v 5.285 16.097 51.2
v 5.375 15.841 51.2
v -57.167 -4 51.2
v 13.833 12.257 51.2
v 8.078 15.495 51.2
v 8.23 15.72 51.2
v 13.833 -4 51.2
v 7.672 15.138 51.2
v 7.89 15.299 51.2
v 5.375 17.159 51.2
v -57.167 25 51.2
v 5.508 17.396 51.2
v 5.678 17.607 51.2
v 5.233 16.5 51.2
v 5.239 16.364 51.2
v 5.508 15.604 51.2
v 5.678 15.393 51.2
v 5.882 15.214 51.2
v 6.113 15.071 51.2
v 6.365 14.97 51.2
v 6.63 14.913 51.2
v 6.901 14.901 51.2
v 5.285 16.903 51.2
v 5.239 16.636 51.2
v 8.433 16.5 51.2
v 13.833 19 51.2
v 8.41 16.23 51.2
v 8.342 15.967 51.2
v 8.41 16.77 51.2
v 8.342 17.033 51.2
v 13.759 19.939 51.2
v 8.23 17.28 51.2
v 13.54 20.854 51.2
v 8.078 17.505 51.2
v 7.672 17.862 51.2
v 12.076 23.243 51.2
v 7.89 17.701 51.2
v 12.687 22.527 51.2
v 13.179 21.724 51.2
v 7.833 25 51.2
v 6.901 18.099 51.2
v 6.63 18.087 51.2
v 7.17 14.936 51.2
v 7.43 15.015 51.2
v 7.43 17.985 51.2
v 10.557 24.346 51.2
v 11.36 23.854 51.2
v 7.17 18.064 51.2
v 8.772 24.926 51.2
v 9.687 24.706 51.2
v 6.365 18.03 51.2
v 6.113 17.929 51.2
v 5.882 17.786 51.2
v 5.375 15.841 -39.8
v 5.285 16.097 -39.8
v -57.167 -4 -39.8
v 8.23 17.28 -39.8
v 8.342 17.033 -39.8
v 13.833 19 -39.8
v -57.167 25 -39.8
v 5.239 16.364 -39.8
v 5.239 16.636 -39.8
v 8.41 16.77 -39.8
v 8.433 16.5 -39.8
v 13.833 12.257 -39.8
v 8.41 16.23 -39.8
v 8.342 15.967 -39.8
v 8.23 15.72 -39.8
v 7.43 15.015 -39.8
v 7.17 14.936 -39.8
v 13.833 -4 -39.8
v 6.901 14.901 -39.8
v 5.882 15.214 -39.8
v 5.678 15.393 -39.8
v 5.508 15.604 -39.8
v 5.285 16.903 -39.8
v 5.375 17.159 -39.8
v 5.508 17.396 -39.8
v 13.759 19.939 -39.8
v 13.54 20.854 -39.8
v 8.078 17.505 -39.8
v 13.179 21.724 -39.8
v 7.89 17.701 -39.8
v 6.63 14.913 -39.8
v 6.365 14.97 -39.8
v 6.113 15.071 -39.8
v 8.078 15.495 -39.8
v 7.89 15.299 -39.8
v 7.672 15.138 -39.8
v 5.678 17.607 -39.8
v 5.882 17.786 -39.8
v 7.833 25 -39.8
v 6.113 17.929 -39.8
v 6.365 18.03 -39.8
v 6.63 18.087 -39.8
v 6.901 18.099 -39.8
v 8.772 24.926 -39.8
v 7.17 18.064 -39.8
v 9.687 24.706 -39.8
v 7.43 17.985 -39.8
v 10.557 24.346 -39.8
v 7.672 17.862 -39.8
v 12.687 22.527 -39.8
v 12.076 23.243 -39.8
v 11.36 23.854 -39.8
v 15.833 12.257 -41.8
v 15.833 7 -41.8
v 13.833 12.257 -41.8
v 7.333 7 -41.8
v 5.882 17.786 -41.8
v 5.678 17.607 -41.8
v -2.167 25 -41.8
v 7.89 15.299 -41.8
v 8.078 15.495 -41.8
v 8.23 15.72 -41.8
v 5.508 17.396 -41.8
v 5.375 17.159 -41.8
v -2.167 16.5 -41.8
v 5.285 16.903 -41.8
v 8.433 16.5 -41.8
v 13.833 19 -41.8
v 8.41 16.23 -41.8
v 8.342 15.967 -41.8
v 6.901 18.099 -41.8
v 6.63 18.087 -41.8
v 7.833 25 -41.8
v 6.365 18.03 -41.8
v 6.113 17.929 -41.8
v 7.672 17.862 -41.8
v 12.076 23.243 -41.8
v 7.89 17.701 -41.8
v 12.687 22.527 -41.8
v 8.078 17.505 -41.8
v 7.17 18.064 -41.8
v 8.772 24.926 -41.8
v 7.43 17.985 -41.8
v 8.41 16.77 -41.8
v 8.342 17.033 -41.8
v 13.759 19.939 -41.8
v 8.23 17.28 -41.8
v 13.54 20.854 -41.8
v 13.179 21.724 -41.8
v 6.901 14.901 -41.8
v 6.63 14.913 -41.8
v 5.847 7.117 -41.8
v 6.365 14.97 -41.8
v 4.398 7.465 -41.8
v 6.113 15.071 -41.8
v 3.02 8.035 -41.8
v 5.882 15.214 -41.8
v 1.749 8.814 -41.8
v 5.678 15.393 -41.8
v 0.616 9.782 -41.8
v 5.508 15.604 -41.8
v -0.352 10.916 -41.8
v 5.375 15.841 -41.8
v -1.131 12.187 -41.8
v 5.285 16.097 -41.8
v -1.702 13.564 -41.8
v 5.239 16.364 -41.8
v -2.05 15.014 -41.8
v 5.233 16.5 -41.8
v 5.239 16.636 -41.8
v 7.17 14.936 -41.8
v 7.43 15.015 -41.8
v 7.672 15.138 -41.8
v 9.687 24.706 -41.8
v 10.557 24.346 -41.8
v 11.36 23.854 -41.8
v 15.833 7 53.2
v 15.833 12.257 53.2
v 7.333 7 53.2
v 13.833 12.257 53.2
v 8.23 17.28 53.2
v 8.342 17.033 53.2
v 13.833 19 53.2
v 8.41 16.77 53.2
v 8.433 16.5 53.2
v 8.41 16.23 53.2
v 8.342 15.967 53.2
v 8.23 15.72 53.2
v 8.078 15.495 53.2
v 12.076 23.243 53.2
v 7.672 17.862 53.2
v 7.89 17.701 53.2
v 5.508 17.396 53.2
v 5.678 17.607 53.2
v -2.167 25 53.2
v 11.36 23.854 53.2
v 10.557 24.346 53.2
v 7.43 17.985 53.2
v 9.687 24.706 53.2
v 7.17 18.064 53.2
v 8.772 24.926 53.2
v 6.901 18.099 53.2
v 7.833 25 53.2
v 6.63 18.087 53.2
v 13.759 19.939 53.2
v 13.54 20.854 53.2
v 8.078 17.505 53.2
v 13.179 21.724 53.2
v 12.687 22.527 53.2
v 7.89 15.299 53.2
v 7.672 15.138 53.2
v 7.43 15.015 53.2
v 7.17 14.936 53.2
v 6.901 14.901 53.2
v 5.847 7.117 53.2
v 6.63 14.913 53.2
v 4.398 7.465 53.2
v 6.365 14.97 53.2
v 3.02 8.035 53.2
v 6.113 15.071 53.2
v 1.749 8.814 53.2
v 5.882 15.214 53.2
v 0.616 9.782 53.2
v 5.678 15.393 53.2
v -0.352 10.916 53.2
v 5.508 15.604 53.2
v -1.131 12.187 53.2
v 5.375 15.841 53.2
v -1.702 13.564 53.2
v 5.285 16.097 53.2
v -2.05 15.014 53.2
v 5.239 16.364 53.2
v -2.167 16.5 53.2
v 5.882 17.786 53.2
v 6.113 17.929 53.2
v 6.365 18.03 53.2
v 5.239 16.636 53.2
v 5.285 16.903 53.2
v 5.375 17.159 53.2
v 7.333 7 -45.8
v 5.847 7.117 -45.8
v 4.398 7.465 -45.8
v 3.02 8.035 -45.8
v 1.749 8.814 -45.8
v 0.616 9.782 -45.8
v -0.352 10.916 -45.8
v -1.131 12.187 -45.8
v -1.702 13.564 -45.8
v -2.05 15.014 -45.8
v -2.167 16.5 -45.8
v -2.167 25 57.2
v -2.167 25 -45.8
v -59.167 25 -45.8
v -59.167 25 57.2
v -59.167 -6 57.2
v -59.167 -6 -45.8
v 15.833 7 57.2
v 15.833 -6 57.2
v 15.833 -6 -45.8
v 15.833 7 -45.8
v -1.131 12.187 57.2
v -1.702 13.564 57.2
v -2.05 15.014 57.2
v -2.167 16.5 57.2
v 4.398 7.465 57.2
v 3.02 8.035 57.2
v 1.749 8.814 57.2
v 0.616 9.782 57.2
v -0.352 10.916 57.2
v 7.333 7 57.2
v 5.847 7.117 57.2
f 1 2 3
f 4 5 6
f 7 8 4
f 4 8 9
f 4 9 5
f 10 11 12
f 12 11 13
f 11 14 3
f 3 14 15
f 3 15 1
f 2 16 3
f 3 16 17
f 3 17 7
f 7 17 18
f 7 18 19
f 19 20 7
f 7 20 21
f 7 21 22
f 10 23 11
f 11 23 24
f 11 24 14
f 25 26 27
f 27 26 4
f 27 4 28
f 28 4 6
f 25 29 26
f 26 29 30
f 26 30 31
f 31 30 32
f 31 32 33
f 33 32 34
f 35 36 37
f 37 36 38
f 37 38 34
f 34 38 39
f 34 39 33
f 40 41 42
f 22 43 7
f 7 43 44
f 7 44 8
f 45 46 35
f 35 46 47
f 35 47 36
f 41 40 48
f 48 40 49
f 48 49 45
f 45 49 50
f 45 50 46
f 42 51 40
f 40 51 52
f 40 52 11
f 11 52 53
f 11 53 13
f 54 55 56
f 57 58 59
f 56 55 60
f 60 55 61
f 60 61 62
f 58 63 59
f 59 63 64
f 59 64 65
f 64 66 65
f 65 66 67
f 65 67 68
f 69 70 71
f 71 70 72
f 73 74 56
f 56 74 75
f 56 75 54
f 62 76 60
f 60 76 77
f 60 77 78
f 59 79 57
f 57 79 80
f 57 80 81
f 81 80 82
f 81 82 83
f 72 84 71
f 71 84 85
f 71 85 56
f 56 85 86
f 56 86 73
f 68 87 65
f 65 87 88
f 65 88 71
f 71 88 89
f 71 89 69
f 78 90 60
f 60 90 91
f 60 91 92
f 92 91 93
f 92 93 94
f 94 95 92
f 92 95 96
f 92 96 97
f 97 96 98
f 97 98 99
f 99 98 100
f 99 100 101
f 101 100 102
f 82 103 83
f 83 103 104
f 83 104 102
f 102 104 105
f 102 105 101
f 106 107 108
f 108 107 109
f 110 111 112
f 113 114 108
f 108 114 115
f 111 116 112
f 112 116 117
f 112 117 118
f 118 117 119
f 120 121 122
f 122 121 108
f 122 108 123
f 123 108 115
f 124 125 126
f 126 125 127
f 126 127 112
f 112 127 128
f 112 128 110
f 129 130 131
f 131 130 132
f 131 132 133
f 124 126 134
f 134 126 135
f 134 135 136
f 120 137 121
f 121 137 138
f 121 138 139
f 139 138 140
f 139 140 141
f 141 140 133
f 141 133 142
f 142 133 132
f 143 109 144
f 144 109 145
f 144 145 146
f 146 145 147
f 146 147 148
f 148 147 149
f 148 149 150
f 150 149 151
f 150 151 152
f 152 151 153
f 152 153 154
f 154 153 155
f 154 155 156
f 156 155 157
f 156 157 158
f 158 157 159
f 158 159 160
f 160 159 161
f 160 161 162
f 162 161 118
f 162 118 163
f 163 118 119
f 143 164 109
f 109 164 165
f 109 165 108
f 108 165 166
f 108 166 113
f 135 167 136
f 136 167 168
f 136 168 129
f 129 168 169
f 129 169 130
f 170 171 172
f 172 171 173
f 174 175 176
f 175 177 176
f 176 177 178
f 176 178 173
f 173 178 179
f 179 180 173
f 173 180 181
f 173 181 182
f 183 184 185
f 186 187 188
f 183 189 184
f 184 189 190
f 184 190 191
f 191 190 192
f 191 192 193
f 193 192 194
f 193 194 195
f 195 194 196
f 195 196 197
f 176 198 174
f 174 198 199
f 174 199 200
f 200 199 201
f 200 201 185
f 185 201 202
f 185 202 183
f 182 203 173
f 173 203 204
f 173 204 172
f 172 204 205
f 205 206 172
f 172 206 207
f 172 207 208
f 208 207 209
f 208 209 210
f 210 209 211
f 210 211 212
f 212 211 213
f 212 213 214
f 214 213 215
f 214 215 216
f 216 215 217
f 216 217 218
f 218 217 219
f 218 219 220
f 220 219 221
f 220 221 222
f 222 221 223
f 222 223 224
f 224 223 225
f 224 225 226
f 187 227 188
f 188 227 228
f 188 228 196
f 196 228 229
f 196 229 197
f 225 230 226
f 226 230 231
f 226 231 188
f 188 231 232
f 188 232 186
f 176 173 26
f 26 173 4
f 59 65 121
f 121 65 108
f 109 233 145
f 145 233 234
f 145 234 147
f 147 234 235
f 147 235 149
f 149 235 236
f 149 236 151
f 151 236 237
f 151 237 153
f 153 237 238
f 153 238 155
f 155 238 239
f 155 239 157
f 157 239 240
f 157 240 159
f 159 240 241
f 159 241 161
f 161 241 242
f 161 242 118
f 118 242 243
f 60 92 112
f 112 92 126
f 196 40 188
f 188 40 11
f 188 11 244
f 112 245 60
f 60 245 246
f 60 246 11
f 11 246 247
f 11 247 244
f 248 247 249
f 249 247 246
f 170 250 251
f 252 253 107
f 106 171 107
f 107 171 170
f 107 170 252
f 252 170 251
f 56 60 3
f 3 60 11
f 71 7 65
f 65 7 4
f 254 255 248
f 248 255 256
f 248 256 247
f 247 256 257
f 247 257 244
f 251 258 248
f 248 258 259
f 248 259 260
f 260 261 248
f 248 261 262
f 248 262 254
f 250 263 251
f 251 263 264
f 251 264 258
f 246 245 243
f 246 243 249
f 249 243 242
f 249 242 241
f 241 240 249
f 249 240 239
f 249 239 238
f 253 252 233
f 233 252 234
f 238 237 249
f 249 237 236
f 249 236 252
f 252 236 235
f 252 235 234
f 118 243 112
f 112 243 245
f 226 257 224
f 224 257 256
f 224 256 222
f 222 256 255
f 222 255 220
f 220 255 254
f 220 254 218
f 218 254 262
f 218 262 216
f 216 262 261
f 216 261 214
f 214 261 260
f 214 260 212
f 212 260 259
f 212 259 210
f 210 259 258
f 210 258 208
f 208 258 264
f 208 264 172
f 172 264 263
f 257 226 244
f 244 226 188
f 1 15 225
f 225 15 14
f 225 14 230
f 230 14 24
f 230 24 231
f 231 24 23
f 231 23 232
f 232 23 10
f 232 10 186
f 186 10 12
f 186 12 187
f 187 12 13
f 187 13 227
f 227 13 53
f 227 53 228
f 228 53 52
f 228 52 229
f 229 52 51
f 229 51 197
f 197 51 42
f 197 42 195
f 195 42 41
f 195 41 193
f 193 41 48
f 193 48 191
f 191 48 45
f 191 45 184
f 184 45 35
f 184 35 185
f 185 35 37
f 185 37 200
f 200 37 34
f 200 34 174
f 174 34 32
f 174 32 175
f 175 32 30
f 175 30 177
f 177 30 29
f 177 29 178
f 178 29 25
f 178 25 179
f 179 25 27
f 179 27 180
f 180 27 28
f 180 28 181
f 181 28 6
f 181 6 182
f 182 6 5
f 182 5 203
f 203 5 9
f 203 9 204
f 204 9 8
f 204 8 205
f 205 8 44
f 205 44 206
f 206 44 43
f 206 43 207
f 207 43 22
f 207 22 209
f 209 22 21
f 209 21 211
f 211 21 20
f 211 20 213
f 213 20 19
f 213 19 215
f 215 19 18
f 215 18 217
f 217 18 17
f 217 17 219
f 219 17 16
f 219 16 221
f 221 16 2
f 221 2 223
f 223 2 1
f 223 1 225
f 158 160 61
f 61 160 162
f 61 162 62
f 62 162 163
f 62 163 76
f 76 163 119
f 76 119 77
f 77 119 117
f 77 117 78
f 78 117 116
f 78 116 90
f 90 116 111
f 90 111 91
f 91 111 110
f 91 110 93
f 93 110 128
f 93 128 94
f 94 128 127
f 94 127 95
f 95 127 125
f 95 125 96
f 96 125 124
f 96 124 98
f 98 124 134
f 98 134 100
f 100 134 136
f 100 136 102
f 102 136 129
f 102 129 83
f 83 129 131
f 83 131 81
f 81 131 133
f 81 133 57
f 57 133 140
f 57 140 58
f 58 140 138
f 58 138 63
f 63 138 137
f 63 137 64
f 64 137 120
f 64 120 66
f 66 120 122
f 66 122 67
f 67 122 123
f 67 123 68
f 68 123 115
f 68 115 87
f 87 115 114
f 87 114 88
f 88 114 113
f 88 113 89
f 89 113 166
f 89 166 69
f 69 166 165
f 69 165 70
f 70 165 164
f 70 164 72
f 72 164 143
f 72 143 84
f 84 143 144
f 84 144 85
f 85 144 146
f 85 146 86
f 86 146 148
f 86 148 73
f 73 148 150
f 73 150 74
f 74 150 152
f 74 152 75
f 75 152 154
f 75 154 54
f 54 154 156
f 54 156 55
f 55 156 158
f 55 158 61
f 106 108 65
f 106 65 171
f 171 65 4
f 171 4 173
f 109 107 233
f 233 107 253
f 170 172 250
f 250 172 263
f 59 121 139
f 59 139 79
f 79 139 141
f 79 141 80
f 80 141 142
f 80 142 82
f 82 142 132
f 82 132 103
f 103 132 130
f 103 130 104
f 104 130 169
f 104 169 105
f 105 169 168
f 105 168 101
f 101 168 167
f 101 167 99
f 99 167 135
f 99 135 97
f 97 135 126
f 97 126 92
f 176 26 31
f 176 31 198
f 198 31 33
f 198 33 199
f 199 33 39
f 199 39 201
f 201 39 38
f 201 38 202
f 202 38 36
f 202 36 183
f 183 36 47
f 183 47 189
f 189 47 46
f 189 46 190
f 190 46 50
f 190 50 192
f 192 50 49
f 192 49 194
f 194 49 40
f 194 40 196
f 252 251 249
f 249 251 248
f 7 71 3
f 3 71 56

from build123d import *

# Parameters (mm, degrees)
SKETCH_1_W           = 75
SKETCH_1_H           = 95
EXTRUDE_1_DEPTH      = 25
SHELL_1_T            = -2
SKETCH_2_W           = 75
SKETCH_2_H           = 25
EXTRUDE_2_DEPTH      = 4
SKETCH_3_W           = 75
SKETCH_3_H           = 25
EXTRUDE_3_DEPTH      = 4
CUT_EXTRUDE_2_DEPTH  = 4
CUT_EXTRUDE_START    = -4
CUT_EXTRUDE_3_DEPTH  = 4
SKETCH_6_R           = 1.6
CUT_EXTRUDE_4_DEPTH  = 150
SKETCH_7_W           = 95
SKETCH_7_H           = 12.742640687
CUT_EXTRUDE_5_DEPTH  = 2
CUT_EXTRUDE_6_DEPTH  = 4
CUT_EXTRUDE_7_DEPTH  = 4
CUT_EXTRUDE_9_DEPTH  = 150
SKETCH_11_W          = 75
SKETCH_11_H          = 103
EXTRUDE_4_DEPTH      = 6
SKETCH_12_W          = 71
SKETCH_12_H          = 91
CUT_EXTRUDE_10_DEPTH = 6


with BuildPart() as part:
    # 草图1 → 凸台-拉伸1 (new body)
    with BuildSketch(Plane(origin=(0, 0, 0), x_dir=(1, 0, 0), z_dir=(0, 1, 0))):
        with Locations((-21.666666667, -5.700239808)):
            Rectangle(SKETCH_1_W, SKETCH_1_H)
    extrude(amount=EXTRUDE_1_DEPTH)

    # 抽壳1
    shell_1_openings = [part.faces().sort_by_distance(p)[0] for p in [
        (-21.666666667, 25, 5.700239808),
    ]]
    offset(amount=SHELL_1_T, openings=shell_1_openings, kind=Kind.INTERSECTION)

    # 草图2 → 凸台-拉伸2 (add)
    with BuildSketch(Plane.XY.offset(53.200239808)):
        with Locations((-21.666666667, 12.5)):
            Rectangle(SKETCH_2_W, SKETCH_2_H)
    extrude(amount=EXTRUDE_2_DEPTH)

    # 草图3 → 凸台-拉伸3 (add)
    with BuildSketch(Plane(origin=(0, 0, -41.799760192), x_dir=(-1, 0, 0), z_dir=(0, 0, -1))):
        with Locations((21.666666667, 12.5)):
            Rectangle(SKETCH_3_W, SKETCH_3_H)
    extrude(amount=EXTRUDE_3_DEPTH)

    # 草图4 → 切除-拉伸2 (cut)
    with BuildSketch(Plane(origin=(0, 0, -45.799760192), x_dir=(-1, 0, 0), z_dir=(0, 0, -1))):
        with BuildLine():
            Line((-16.833333333, 26), (-16.833333333, 16.5))
            ThreePointArc((-16.833333333, 16.5), (-7.333333333, 7), (2.166666667, 16.5))
            Line((2.166666667, 16.5), (2.166666667, 26))
            Line((2.166666667, 26), (-16.833333333, 26))
        make_face()
    extrude(amount=-CUT_EXTRUDE_2_DEPTH, mode=Mode.SUBTRACT)

    # 草图5 → 切除-拉伸3 (cut)
    with BuildSketch(Plane.XY.offset(57.200239808).offset(CUT_EXTRUDE_START)):
        with BuildLine():
            Line((-2.166666667, 26), (-2.166666667, 16.5))
            ThreePointArc((-2.166666667, 16.5), (7.333333333, 7), (16.833333333, 16.5))
            Line((16.833333333, 16.5), (16.833333333, 26))
            Line((16.833333333, 26), (-2.166666667, 26))
        make_face()
    extrude(amount=CUT_EXTRUDE_3_DEPTH, mode=Mode.SUBTRACT)

    # 草图6 → 切除-拉伸4 (cut)
    with BuildSketch(Plane.XY.offset(53.200239808)):
        with Locations((6.833333333, 16.5)):
            Circle(SKETCH_6_R)
    extrude(amount=-CUT_EXTRUDE_4_DEPTH, mode=Mode.SUBTRACT)

    # 草图7 → 切除-拉伸5 (cut)
    with BuildSketch(Plane(origin=(15.833333333, 0, 0), x_dir=(0, 0, -1), z_dir=(1, 0, 0))):
        with Locations((-5.700239808, 18.628679657)):
            Rectangle(SKETCH_7_W, SKETCH_7_H)
    extrude(amount=-CUT_EXTRUDE_5_DEPTH, mode=Mode.SUBTRACT)

    # 草图8 → 切除-拉伸6 (cut)
    with BuildSketch(Plane(origin=(0, 0, -45.799760192), x_dir=(-1, 0, 0), z_dir=(0, 0, -1))):
        Polygon((-7.333333333, 7), (-15.833333333, 7), (-15.833333333, 12.257359313), align=None)
    extrude(amount=-CUT_EXTRUDE_6_DEPTH, mode=Mode.SUBTRACT)

    # 草图9 → 切除-拉伸7 (cut)
    with BuildSketch(Plane.XY.offset(57.200239808)):
        Polygon((7.333333333, 7), (15.833333333, 7), (15.833333333, 12.257359313), align=None)
    extrude(amount=-CUT_EXTRUDE_7_DEPTH, mode=Mode.SUBTRACT)

    # 草图10 → 切除-拉伸9 (cut)
    with BuildSketch(Plane(origin=(0, 0, -41.799760192), x_dir=(-1, 0, 0), z_dir=(0, 0, -1))):
        with BuildLine():
            ThreePointArc((-13.833333333, 19), (-12.07597402, 23.242640687), (-7.833333333, 25))
            Line((-7.833333333, 25), (-13.833333333, 25))
            Line((-13.833333333, 25), (-13.833333333, 19))
        make_face()
    extrude(amount=-CUT_EXTRUDE_9_DEPTH, mode=Mode.SUBTRACT)

    # 草图11 → 凸台-拉伸4 (add)
    with BuildSketch(Plane.XZ):
        with Locations((-21.666666667, 5.700239808)):
            Rectangle(SKETCH_11_W, SKETCH_11_H)
    extrude(amount=EXTRUDE_4_DEPTH)

    # 草图12 → 切除-拉伸10 (cut)
    with BuildSketch(Plane(origin=(0, 2, 0), x_dir=(1, 0, 0), z_dir=(0, 1, 0))):
        with Locations((-21.666666667, -5.700239808)):
            Rectangle(SKETCH_12_W, SKETCH_12_H)
    extrude(amount=-CUT_EXTRUDE_10_DEPTH, mode=Mode.SUBTRACT)


solid = part.part
